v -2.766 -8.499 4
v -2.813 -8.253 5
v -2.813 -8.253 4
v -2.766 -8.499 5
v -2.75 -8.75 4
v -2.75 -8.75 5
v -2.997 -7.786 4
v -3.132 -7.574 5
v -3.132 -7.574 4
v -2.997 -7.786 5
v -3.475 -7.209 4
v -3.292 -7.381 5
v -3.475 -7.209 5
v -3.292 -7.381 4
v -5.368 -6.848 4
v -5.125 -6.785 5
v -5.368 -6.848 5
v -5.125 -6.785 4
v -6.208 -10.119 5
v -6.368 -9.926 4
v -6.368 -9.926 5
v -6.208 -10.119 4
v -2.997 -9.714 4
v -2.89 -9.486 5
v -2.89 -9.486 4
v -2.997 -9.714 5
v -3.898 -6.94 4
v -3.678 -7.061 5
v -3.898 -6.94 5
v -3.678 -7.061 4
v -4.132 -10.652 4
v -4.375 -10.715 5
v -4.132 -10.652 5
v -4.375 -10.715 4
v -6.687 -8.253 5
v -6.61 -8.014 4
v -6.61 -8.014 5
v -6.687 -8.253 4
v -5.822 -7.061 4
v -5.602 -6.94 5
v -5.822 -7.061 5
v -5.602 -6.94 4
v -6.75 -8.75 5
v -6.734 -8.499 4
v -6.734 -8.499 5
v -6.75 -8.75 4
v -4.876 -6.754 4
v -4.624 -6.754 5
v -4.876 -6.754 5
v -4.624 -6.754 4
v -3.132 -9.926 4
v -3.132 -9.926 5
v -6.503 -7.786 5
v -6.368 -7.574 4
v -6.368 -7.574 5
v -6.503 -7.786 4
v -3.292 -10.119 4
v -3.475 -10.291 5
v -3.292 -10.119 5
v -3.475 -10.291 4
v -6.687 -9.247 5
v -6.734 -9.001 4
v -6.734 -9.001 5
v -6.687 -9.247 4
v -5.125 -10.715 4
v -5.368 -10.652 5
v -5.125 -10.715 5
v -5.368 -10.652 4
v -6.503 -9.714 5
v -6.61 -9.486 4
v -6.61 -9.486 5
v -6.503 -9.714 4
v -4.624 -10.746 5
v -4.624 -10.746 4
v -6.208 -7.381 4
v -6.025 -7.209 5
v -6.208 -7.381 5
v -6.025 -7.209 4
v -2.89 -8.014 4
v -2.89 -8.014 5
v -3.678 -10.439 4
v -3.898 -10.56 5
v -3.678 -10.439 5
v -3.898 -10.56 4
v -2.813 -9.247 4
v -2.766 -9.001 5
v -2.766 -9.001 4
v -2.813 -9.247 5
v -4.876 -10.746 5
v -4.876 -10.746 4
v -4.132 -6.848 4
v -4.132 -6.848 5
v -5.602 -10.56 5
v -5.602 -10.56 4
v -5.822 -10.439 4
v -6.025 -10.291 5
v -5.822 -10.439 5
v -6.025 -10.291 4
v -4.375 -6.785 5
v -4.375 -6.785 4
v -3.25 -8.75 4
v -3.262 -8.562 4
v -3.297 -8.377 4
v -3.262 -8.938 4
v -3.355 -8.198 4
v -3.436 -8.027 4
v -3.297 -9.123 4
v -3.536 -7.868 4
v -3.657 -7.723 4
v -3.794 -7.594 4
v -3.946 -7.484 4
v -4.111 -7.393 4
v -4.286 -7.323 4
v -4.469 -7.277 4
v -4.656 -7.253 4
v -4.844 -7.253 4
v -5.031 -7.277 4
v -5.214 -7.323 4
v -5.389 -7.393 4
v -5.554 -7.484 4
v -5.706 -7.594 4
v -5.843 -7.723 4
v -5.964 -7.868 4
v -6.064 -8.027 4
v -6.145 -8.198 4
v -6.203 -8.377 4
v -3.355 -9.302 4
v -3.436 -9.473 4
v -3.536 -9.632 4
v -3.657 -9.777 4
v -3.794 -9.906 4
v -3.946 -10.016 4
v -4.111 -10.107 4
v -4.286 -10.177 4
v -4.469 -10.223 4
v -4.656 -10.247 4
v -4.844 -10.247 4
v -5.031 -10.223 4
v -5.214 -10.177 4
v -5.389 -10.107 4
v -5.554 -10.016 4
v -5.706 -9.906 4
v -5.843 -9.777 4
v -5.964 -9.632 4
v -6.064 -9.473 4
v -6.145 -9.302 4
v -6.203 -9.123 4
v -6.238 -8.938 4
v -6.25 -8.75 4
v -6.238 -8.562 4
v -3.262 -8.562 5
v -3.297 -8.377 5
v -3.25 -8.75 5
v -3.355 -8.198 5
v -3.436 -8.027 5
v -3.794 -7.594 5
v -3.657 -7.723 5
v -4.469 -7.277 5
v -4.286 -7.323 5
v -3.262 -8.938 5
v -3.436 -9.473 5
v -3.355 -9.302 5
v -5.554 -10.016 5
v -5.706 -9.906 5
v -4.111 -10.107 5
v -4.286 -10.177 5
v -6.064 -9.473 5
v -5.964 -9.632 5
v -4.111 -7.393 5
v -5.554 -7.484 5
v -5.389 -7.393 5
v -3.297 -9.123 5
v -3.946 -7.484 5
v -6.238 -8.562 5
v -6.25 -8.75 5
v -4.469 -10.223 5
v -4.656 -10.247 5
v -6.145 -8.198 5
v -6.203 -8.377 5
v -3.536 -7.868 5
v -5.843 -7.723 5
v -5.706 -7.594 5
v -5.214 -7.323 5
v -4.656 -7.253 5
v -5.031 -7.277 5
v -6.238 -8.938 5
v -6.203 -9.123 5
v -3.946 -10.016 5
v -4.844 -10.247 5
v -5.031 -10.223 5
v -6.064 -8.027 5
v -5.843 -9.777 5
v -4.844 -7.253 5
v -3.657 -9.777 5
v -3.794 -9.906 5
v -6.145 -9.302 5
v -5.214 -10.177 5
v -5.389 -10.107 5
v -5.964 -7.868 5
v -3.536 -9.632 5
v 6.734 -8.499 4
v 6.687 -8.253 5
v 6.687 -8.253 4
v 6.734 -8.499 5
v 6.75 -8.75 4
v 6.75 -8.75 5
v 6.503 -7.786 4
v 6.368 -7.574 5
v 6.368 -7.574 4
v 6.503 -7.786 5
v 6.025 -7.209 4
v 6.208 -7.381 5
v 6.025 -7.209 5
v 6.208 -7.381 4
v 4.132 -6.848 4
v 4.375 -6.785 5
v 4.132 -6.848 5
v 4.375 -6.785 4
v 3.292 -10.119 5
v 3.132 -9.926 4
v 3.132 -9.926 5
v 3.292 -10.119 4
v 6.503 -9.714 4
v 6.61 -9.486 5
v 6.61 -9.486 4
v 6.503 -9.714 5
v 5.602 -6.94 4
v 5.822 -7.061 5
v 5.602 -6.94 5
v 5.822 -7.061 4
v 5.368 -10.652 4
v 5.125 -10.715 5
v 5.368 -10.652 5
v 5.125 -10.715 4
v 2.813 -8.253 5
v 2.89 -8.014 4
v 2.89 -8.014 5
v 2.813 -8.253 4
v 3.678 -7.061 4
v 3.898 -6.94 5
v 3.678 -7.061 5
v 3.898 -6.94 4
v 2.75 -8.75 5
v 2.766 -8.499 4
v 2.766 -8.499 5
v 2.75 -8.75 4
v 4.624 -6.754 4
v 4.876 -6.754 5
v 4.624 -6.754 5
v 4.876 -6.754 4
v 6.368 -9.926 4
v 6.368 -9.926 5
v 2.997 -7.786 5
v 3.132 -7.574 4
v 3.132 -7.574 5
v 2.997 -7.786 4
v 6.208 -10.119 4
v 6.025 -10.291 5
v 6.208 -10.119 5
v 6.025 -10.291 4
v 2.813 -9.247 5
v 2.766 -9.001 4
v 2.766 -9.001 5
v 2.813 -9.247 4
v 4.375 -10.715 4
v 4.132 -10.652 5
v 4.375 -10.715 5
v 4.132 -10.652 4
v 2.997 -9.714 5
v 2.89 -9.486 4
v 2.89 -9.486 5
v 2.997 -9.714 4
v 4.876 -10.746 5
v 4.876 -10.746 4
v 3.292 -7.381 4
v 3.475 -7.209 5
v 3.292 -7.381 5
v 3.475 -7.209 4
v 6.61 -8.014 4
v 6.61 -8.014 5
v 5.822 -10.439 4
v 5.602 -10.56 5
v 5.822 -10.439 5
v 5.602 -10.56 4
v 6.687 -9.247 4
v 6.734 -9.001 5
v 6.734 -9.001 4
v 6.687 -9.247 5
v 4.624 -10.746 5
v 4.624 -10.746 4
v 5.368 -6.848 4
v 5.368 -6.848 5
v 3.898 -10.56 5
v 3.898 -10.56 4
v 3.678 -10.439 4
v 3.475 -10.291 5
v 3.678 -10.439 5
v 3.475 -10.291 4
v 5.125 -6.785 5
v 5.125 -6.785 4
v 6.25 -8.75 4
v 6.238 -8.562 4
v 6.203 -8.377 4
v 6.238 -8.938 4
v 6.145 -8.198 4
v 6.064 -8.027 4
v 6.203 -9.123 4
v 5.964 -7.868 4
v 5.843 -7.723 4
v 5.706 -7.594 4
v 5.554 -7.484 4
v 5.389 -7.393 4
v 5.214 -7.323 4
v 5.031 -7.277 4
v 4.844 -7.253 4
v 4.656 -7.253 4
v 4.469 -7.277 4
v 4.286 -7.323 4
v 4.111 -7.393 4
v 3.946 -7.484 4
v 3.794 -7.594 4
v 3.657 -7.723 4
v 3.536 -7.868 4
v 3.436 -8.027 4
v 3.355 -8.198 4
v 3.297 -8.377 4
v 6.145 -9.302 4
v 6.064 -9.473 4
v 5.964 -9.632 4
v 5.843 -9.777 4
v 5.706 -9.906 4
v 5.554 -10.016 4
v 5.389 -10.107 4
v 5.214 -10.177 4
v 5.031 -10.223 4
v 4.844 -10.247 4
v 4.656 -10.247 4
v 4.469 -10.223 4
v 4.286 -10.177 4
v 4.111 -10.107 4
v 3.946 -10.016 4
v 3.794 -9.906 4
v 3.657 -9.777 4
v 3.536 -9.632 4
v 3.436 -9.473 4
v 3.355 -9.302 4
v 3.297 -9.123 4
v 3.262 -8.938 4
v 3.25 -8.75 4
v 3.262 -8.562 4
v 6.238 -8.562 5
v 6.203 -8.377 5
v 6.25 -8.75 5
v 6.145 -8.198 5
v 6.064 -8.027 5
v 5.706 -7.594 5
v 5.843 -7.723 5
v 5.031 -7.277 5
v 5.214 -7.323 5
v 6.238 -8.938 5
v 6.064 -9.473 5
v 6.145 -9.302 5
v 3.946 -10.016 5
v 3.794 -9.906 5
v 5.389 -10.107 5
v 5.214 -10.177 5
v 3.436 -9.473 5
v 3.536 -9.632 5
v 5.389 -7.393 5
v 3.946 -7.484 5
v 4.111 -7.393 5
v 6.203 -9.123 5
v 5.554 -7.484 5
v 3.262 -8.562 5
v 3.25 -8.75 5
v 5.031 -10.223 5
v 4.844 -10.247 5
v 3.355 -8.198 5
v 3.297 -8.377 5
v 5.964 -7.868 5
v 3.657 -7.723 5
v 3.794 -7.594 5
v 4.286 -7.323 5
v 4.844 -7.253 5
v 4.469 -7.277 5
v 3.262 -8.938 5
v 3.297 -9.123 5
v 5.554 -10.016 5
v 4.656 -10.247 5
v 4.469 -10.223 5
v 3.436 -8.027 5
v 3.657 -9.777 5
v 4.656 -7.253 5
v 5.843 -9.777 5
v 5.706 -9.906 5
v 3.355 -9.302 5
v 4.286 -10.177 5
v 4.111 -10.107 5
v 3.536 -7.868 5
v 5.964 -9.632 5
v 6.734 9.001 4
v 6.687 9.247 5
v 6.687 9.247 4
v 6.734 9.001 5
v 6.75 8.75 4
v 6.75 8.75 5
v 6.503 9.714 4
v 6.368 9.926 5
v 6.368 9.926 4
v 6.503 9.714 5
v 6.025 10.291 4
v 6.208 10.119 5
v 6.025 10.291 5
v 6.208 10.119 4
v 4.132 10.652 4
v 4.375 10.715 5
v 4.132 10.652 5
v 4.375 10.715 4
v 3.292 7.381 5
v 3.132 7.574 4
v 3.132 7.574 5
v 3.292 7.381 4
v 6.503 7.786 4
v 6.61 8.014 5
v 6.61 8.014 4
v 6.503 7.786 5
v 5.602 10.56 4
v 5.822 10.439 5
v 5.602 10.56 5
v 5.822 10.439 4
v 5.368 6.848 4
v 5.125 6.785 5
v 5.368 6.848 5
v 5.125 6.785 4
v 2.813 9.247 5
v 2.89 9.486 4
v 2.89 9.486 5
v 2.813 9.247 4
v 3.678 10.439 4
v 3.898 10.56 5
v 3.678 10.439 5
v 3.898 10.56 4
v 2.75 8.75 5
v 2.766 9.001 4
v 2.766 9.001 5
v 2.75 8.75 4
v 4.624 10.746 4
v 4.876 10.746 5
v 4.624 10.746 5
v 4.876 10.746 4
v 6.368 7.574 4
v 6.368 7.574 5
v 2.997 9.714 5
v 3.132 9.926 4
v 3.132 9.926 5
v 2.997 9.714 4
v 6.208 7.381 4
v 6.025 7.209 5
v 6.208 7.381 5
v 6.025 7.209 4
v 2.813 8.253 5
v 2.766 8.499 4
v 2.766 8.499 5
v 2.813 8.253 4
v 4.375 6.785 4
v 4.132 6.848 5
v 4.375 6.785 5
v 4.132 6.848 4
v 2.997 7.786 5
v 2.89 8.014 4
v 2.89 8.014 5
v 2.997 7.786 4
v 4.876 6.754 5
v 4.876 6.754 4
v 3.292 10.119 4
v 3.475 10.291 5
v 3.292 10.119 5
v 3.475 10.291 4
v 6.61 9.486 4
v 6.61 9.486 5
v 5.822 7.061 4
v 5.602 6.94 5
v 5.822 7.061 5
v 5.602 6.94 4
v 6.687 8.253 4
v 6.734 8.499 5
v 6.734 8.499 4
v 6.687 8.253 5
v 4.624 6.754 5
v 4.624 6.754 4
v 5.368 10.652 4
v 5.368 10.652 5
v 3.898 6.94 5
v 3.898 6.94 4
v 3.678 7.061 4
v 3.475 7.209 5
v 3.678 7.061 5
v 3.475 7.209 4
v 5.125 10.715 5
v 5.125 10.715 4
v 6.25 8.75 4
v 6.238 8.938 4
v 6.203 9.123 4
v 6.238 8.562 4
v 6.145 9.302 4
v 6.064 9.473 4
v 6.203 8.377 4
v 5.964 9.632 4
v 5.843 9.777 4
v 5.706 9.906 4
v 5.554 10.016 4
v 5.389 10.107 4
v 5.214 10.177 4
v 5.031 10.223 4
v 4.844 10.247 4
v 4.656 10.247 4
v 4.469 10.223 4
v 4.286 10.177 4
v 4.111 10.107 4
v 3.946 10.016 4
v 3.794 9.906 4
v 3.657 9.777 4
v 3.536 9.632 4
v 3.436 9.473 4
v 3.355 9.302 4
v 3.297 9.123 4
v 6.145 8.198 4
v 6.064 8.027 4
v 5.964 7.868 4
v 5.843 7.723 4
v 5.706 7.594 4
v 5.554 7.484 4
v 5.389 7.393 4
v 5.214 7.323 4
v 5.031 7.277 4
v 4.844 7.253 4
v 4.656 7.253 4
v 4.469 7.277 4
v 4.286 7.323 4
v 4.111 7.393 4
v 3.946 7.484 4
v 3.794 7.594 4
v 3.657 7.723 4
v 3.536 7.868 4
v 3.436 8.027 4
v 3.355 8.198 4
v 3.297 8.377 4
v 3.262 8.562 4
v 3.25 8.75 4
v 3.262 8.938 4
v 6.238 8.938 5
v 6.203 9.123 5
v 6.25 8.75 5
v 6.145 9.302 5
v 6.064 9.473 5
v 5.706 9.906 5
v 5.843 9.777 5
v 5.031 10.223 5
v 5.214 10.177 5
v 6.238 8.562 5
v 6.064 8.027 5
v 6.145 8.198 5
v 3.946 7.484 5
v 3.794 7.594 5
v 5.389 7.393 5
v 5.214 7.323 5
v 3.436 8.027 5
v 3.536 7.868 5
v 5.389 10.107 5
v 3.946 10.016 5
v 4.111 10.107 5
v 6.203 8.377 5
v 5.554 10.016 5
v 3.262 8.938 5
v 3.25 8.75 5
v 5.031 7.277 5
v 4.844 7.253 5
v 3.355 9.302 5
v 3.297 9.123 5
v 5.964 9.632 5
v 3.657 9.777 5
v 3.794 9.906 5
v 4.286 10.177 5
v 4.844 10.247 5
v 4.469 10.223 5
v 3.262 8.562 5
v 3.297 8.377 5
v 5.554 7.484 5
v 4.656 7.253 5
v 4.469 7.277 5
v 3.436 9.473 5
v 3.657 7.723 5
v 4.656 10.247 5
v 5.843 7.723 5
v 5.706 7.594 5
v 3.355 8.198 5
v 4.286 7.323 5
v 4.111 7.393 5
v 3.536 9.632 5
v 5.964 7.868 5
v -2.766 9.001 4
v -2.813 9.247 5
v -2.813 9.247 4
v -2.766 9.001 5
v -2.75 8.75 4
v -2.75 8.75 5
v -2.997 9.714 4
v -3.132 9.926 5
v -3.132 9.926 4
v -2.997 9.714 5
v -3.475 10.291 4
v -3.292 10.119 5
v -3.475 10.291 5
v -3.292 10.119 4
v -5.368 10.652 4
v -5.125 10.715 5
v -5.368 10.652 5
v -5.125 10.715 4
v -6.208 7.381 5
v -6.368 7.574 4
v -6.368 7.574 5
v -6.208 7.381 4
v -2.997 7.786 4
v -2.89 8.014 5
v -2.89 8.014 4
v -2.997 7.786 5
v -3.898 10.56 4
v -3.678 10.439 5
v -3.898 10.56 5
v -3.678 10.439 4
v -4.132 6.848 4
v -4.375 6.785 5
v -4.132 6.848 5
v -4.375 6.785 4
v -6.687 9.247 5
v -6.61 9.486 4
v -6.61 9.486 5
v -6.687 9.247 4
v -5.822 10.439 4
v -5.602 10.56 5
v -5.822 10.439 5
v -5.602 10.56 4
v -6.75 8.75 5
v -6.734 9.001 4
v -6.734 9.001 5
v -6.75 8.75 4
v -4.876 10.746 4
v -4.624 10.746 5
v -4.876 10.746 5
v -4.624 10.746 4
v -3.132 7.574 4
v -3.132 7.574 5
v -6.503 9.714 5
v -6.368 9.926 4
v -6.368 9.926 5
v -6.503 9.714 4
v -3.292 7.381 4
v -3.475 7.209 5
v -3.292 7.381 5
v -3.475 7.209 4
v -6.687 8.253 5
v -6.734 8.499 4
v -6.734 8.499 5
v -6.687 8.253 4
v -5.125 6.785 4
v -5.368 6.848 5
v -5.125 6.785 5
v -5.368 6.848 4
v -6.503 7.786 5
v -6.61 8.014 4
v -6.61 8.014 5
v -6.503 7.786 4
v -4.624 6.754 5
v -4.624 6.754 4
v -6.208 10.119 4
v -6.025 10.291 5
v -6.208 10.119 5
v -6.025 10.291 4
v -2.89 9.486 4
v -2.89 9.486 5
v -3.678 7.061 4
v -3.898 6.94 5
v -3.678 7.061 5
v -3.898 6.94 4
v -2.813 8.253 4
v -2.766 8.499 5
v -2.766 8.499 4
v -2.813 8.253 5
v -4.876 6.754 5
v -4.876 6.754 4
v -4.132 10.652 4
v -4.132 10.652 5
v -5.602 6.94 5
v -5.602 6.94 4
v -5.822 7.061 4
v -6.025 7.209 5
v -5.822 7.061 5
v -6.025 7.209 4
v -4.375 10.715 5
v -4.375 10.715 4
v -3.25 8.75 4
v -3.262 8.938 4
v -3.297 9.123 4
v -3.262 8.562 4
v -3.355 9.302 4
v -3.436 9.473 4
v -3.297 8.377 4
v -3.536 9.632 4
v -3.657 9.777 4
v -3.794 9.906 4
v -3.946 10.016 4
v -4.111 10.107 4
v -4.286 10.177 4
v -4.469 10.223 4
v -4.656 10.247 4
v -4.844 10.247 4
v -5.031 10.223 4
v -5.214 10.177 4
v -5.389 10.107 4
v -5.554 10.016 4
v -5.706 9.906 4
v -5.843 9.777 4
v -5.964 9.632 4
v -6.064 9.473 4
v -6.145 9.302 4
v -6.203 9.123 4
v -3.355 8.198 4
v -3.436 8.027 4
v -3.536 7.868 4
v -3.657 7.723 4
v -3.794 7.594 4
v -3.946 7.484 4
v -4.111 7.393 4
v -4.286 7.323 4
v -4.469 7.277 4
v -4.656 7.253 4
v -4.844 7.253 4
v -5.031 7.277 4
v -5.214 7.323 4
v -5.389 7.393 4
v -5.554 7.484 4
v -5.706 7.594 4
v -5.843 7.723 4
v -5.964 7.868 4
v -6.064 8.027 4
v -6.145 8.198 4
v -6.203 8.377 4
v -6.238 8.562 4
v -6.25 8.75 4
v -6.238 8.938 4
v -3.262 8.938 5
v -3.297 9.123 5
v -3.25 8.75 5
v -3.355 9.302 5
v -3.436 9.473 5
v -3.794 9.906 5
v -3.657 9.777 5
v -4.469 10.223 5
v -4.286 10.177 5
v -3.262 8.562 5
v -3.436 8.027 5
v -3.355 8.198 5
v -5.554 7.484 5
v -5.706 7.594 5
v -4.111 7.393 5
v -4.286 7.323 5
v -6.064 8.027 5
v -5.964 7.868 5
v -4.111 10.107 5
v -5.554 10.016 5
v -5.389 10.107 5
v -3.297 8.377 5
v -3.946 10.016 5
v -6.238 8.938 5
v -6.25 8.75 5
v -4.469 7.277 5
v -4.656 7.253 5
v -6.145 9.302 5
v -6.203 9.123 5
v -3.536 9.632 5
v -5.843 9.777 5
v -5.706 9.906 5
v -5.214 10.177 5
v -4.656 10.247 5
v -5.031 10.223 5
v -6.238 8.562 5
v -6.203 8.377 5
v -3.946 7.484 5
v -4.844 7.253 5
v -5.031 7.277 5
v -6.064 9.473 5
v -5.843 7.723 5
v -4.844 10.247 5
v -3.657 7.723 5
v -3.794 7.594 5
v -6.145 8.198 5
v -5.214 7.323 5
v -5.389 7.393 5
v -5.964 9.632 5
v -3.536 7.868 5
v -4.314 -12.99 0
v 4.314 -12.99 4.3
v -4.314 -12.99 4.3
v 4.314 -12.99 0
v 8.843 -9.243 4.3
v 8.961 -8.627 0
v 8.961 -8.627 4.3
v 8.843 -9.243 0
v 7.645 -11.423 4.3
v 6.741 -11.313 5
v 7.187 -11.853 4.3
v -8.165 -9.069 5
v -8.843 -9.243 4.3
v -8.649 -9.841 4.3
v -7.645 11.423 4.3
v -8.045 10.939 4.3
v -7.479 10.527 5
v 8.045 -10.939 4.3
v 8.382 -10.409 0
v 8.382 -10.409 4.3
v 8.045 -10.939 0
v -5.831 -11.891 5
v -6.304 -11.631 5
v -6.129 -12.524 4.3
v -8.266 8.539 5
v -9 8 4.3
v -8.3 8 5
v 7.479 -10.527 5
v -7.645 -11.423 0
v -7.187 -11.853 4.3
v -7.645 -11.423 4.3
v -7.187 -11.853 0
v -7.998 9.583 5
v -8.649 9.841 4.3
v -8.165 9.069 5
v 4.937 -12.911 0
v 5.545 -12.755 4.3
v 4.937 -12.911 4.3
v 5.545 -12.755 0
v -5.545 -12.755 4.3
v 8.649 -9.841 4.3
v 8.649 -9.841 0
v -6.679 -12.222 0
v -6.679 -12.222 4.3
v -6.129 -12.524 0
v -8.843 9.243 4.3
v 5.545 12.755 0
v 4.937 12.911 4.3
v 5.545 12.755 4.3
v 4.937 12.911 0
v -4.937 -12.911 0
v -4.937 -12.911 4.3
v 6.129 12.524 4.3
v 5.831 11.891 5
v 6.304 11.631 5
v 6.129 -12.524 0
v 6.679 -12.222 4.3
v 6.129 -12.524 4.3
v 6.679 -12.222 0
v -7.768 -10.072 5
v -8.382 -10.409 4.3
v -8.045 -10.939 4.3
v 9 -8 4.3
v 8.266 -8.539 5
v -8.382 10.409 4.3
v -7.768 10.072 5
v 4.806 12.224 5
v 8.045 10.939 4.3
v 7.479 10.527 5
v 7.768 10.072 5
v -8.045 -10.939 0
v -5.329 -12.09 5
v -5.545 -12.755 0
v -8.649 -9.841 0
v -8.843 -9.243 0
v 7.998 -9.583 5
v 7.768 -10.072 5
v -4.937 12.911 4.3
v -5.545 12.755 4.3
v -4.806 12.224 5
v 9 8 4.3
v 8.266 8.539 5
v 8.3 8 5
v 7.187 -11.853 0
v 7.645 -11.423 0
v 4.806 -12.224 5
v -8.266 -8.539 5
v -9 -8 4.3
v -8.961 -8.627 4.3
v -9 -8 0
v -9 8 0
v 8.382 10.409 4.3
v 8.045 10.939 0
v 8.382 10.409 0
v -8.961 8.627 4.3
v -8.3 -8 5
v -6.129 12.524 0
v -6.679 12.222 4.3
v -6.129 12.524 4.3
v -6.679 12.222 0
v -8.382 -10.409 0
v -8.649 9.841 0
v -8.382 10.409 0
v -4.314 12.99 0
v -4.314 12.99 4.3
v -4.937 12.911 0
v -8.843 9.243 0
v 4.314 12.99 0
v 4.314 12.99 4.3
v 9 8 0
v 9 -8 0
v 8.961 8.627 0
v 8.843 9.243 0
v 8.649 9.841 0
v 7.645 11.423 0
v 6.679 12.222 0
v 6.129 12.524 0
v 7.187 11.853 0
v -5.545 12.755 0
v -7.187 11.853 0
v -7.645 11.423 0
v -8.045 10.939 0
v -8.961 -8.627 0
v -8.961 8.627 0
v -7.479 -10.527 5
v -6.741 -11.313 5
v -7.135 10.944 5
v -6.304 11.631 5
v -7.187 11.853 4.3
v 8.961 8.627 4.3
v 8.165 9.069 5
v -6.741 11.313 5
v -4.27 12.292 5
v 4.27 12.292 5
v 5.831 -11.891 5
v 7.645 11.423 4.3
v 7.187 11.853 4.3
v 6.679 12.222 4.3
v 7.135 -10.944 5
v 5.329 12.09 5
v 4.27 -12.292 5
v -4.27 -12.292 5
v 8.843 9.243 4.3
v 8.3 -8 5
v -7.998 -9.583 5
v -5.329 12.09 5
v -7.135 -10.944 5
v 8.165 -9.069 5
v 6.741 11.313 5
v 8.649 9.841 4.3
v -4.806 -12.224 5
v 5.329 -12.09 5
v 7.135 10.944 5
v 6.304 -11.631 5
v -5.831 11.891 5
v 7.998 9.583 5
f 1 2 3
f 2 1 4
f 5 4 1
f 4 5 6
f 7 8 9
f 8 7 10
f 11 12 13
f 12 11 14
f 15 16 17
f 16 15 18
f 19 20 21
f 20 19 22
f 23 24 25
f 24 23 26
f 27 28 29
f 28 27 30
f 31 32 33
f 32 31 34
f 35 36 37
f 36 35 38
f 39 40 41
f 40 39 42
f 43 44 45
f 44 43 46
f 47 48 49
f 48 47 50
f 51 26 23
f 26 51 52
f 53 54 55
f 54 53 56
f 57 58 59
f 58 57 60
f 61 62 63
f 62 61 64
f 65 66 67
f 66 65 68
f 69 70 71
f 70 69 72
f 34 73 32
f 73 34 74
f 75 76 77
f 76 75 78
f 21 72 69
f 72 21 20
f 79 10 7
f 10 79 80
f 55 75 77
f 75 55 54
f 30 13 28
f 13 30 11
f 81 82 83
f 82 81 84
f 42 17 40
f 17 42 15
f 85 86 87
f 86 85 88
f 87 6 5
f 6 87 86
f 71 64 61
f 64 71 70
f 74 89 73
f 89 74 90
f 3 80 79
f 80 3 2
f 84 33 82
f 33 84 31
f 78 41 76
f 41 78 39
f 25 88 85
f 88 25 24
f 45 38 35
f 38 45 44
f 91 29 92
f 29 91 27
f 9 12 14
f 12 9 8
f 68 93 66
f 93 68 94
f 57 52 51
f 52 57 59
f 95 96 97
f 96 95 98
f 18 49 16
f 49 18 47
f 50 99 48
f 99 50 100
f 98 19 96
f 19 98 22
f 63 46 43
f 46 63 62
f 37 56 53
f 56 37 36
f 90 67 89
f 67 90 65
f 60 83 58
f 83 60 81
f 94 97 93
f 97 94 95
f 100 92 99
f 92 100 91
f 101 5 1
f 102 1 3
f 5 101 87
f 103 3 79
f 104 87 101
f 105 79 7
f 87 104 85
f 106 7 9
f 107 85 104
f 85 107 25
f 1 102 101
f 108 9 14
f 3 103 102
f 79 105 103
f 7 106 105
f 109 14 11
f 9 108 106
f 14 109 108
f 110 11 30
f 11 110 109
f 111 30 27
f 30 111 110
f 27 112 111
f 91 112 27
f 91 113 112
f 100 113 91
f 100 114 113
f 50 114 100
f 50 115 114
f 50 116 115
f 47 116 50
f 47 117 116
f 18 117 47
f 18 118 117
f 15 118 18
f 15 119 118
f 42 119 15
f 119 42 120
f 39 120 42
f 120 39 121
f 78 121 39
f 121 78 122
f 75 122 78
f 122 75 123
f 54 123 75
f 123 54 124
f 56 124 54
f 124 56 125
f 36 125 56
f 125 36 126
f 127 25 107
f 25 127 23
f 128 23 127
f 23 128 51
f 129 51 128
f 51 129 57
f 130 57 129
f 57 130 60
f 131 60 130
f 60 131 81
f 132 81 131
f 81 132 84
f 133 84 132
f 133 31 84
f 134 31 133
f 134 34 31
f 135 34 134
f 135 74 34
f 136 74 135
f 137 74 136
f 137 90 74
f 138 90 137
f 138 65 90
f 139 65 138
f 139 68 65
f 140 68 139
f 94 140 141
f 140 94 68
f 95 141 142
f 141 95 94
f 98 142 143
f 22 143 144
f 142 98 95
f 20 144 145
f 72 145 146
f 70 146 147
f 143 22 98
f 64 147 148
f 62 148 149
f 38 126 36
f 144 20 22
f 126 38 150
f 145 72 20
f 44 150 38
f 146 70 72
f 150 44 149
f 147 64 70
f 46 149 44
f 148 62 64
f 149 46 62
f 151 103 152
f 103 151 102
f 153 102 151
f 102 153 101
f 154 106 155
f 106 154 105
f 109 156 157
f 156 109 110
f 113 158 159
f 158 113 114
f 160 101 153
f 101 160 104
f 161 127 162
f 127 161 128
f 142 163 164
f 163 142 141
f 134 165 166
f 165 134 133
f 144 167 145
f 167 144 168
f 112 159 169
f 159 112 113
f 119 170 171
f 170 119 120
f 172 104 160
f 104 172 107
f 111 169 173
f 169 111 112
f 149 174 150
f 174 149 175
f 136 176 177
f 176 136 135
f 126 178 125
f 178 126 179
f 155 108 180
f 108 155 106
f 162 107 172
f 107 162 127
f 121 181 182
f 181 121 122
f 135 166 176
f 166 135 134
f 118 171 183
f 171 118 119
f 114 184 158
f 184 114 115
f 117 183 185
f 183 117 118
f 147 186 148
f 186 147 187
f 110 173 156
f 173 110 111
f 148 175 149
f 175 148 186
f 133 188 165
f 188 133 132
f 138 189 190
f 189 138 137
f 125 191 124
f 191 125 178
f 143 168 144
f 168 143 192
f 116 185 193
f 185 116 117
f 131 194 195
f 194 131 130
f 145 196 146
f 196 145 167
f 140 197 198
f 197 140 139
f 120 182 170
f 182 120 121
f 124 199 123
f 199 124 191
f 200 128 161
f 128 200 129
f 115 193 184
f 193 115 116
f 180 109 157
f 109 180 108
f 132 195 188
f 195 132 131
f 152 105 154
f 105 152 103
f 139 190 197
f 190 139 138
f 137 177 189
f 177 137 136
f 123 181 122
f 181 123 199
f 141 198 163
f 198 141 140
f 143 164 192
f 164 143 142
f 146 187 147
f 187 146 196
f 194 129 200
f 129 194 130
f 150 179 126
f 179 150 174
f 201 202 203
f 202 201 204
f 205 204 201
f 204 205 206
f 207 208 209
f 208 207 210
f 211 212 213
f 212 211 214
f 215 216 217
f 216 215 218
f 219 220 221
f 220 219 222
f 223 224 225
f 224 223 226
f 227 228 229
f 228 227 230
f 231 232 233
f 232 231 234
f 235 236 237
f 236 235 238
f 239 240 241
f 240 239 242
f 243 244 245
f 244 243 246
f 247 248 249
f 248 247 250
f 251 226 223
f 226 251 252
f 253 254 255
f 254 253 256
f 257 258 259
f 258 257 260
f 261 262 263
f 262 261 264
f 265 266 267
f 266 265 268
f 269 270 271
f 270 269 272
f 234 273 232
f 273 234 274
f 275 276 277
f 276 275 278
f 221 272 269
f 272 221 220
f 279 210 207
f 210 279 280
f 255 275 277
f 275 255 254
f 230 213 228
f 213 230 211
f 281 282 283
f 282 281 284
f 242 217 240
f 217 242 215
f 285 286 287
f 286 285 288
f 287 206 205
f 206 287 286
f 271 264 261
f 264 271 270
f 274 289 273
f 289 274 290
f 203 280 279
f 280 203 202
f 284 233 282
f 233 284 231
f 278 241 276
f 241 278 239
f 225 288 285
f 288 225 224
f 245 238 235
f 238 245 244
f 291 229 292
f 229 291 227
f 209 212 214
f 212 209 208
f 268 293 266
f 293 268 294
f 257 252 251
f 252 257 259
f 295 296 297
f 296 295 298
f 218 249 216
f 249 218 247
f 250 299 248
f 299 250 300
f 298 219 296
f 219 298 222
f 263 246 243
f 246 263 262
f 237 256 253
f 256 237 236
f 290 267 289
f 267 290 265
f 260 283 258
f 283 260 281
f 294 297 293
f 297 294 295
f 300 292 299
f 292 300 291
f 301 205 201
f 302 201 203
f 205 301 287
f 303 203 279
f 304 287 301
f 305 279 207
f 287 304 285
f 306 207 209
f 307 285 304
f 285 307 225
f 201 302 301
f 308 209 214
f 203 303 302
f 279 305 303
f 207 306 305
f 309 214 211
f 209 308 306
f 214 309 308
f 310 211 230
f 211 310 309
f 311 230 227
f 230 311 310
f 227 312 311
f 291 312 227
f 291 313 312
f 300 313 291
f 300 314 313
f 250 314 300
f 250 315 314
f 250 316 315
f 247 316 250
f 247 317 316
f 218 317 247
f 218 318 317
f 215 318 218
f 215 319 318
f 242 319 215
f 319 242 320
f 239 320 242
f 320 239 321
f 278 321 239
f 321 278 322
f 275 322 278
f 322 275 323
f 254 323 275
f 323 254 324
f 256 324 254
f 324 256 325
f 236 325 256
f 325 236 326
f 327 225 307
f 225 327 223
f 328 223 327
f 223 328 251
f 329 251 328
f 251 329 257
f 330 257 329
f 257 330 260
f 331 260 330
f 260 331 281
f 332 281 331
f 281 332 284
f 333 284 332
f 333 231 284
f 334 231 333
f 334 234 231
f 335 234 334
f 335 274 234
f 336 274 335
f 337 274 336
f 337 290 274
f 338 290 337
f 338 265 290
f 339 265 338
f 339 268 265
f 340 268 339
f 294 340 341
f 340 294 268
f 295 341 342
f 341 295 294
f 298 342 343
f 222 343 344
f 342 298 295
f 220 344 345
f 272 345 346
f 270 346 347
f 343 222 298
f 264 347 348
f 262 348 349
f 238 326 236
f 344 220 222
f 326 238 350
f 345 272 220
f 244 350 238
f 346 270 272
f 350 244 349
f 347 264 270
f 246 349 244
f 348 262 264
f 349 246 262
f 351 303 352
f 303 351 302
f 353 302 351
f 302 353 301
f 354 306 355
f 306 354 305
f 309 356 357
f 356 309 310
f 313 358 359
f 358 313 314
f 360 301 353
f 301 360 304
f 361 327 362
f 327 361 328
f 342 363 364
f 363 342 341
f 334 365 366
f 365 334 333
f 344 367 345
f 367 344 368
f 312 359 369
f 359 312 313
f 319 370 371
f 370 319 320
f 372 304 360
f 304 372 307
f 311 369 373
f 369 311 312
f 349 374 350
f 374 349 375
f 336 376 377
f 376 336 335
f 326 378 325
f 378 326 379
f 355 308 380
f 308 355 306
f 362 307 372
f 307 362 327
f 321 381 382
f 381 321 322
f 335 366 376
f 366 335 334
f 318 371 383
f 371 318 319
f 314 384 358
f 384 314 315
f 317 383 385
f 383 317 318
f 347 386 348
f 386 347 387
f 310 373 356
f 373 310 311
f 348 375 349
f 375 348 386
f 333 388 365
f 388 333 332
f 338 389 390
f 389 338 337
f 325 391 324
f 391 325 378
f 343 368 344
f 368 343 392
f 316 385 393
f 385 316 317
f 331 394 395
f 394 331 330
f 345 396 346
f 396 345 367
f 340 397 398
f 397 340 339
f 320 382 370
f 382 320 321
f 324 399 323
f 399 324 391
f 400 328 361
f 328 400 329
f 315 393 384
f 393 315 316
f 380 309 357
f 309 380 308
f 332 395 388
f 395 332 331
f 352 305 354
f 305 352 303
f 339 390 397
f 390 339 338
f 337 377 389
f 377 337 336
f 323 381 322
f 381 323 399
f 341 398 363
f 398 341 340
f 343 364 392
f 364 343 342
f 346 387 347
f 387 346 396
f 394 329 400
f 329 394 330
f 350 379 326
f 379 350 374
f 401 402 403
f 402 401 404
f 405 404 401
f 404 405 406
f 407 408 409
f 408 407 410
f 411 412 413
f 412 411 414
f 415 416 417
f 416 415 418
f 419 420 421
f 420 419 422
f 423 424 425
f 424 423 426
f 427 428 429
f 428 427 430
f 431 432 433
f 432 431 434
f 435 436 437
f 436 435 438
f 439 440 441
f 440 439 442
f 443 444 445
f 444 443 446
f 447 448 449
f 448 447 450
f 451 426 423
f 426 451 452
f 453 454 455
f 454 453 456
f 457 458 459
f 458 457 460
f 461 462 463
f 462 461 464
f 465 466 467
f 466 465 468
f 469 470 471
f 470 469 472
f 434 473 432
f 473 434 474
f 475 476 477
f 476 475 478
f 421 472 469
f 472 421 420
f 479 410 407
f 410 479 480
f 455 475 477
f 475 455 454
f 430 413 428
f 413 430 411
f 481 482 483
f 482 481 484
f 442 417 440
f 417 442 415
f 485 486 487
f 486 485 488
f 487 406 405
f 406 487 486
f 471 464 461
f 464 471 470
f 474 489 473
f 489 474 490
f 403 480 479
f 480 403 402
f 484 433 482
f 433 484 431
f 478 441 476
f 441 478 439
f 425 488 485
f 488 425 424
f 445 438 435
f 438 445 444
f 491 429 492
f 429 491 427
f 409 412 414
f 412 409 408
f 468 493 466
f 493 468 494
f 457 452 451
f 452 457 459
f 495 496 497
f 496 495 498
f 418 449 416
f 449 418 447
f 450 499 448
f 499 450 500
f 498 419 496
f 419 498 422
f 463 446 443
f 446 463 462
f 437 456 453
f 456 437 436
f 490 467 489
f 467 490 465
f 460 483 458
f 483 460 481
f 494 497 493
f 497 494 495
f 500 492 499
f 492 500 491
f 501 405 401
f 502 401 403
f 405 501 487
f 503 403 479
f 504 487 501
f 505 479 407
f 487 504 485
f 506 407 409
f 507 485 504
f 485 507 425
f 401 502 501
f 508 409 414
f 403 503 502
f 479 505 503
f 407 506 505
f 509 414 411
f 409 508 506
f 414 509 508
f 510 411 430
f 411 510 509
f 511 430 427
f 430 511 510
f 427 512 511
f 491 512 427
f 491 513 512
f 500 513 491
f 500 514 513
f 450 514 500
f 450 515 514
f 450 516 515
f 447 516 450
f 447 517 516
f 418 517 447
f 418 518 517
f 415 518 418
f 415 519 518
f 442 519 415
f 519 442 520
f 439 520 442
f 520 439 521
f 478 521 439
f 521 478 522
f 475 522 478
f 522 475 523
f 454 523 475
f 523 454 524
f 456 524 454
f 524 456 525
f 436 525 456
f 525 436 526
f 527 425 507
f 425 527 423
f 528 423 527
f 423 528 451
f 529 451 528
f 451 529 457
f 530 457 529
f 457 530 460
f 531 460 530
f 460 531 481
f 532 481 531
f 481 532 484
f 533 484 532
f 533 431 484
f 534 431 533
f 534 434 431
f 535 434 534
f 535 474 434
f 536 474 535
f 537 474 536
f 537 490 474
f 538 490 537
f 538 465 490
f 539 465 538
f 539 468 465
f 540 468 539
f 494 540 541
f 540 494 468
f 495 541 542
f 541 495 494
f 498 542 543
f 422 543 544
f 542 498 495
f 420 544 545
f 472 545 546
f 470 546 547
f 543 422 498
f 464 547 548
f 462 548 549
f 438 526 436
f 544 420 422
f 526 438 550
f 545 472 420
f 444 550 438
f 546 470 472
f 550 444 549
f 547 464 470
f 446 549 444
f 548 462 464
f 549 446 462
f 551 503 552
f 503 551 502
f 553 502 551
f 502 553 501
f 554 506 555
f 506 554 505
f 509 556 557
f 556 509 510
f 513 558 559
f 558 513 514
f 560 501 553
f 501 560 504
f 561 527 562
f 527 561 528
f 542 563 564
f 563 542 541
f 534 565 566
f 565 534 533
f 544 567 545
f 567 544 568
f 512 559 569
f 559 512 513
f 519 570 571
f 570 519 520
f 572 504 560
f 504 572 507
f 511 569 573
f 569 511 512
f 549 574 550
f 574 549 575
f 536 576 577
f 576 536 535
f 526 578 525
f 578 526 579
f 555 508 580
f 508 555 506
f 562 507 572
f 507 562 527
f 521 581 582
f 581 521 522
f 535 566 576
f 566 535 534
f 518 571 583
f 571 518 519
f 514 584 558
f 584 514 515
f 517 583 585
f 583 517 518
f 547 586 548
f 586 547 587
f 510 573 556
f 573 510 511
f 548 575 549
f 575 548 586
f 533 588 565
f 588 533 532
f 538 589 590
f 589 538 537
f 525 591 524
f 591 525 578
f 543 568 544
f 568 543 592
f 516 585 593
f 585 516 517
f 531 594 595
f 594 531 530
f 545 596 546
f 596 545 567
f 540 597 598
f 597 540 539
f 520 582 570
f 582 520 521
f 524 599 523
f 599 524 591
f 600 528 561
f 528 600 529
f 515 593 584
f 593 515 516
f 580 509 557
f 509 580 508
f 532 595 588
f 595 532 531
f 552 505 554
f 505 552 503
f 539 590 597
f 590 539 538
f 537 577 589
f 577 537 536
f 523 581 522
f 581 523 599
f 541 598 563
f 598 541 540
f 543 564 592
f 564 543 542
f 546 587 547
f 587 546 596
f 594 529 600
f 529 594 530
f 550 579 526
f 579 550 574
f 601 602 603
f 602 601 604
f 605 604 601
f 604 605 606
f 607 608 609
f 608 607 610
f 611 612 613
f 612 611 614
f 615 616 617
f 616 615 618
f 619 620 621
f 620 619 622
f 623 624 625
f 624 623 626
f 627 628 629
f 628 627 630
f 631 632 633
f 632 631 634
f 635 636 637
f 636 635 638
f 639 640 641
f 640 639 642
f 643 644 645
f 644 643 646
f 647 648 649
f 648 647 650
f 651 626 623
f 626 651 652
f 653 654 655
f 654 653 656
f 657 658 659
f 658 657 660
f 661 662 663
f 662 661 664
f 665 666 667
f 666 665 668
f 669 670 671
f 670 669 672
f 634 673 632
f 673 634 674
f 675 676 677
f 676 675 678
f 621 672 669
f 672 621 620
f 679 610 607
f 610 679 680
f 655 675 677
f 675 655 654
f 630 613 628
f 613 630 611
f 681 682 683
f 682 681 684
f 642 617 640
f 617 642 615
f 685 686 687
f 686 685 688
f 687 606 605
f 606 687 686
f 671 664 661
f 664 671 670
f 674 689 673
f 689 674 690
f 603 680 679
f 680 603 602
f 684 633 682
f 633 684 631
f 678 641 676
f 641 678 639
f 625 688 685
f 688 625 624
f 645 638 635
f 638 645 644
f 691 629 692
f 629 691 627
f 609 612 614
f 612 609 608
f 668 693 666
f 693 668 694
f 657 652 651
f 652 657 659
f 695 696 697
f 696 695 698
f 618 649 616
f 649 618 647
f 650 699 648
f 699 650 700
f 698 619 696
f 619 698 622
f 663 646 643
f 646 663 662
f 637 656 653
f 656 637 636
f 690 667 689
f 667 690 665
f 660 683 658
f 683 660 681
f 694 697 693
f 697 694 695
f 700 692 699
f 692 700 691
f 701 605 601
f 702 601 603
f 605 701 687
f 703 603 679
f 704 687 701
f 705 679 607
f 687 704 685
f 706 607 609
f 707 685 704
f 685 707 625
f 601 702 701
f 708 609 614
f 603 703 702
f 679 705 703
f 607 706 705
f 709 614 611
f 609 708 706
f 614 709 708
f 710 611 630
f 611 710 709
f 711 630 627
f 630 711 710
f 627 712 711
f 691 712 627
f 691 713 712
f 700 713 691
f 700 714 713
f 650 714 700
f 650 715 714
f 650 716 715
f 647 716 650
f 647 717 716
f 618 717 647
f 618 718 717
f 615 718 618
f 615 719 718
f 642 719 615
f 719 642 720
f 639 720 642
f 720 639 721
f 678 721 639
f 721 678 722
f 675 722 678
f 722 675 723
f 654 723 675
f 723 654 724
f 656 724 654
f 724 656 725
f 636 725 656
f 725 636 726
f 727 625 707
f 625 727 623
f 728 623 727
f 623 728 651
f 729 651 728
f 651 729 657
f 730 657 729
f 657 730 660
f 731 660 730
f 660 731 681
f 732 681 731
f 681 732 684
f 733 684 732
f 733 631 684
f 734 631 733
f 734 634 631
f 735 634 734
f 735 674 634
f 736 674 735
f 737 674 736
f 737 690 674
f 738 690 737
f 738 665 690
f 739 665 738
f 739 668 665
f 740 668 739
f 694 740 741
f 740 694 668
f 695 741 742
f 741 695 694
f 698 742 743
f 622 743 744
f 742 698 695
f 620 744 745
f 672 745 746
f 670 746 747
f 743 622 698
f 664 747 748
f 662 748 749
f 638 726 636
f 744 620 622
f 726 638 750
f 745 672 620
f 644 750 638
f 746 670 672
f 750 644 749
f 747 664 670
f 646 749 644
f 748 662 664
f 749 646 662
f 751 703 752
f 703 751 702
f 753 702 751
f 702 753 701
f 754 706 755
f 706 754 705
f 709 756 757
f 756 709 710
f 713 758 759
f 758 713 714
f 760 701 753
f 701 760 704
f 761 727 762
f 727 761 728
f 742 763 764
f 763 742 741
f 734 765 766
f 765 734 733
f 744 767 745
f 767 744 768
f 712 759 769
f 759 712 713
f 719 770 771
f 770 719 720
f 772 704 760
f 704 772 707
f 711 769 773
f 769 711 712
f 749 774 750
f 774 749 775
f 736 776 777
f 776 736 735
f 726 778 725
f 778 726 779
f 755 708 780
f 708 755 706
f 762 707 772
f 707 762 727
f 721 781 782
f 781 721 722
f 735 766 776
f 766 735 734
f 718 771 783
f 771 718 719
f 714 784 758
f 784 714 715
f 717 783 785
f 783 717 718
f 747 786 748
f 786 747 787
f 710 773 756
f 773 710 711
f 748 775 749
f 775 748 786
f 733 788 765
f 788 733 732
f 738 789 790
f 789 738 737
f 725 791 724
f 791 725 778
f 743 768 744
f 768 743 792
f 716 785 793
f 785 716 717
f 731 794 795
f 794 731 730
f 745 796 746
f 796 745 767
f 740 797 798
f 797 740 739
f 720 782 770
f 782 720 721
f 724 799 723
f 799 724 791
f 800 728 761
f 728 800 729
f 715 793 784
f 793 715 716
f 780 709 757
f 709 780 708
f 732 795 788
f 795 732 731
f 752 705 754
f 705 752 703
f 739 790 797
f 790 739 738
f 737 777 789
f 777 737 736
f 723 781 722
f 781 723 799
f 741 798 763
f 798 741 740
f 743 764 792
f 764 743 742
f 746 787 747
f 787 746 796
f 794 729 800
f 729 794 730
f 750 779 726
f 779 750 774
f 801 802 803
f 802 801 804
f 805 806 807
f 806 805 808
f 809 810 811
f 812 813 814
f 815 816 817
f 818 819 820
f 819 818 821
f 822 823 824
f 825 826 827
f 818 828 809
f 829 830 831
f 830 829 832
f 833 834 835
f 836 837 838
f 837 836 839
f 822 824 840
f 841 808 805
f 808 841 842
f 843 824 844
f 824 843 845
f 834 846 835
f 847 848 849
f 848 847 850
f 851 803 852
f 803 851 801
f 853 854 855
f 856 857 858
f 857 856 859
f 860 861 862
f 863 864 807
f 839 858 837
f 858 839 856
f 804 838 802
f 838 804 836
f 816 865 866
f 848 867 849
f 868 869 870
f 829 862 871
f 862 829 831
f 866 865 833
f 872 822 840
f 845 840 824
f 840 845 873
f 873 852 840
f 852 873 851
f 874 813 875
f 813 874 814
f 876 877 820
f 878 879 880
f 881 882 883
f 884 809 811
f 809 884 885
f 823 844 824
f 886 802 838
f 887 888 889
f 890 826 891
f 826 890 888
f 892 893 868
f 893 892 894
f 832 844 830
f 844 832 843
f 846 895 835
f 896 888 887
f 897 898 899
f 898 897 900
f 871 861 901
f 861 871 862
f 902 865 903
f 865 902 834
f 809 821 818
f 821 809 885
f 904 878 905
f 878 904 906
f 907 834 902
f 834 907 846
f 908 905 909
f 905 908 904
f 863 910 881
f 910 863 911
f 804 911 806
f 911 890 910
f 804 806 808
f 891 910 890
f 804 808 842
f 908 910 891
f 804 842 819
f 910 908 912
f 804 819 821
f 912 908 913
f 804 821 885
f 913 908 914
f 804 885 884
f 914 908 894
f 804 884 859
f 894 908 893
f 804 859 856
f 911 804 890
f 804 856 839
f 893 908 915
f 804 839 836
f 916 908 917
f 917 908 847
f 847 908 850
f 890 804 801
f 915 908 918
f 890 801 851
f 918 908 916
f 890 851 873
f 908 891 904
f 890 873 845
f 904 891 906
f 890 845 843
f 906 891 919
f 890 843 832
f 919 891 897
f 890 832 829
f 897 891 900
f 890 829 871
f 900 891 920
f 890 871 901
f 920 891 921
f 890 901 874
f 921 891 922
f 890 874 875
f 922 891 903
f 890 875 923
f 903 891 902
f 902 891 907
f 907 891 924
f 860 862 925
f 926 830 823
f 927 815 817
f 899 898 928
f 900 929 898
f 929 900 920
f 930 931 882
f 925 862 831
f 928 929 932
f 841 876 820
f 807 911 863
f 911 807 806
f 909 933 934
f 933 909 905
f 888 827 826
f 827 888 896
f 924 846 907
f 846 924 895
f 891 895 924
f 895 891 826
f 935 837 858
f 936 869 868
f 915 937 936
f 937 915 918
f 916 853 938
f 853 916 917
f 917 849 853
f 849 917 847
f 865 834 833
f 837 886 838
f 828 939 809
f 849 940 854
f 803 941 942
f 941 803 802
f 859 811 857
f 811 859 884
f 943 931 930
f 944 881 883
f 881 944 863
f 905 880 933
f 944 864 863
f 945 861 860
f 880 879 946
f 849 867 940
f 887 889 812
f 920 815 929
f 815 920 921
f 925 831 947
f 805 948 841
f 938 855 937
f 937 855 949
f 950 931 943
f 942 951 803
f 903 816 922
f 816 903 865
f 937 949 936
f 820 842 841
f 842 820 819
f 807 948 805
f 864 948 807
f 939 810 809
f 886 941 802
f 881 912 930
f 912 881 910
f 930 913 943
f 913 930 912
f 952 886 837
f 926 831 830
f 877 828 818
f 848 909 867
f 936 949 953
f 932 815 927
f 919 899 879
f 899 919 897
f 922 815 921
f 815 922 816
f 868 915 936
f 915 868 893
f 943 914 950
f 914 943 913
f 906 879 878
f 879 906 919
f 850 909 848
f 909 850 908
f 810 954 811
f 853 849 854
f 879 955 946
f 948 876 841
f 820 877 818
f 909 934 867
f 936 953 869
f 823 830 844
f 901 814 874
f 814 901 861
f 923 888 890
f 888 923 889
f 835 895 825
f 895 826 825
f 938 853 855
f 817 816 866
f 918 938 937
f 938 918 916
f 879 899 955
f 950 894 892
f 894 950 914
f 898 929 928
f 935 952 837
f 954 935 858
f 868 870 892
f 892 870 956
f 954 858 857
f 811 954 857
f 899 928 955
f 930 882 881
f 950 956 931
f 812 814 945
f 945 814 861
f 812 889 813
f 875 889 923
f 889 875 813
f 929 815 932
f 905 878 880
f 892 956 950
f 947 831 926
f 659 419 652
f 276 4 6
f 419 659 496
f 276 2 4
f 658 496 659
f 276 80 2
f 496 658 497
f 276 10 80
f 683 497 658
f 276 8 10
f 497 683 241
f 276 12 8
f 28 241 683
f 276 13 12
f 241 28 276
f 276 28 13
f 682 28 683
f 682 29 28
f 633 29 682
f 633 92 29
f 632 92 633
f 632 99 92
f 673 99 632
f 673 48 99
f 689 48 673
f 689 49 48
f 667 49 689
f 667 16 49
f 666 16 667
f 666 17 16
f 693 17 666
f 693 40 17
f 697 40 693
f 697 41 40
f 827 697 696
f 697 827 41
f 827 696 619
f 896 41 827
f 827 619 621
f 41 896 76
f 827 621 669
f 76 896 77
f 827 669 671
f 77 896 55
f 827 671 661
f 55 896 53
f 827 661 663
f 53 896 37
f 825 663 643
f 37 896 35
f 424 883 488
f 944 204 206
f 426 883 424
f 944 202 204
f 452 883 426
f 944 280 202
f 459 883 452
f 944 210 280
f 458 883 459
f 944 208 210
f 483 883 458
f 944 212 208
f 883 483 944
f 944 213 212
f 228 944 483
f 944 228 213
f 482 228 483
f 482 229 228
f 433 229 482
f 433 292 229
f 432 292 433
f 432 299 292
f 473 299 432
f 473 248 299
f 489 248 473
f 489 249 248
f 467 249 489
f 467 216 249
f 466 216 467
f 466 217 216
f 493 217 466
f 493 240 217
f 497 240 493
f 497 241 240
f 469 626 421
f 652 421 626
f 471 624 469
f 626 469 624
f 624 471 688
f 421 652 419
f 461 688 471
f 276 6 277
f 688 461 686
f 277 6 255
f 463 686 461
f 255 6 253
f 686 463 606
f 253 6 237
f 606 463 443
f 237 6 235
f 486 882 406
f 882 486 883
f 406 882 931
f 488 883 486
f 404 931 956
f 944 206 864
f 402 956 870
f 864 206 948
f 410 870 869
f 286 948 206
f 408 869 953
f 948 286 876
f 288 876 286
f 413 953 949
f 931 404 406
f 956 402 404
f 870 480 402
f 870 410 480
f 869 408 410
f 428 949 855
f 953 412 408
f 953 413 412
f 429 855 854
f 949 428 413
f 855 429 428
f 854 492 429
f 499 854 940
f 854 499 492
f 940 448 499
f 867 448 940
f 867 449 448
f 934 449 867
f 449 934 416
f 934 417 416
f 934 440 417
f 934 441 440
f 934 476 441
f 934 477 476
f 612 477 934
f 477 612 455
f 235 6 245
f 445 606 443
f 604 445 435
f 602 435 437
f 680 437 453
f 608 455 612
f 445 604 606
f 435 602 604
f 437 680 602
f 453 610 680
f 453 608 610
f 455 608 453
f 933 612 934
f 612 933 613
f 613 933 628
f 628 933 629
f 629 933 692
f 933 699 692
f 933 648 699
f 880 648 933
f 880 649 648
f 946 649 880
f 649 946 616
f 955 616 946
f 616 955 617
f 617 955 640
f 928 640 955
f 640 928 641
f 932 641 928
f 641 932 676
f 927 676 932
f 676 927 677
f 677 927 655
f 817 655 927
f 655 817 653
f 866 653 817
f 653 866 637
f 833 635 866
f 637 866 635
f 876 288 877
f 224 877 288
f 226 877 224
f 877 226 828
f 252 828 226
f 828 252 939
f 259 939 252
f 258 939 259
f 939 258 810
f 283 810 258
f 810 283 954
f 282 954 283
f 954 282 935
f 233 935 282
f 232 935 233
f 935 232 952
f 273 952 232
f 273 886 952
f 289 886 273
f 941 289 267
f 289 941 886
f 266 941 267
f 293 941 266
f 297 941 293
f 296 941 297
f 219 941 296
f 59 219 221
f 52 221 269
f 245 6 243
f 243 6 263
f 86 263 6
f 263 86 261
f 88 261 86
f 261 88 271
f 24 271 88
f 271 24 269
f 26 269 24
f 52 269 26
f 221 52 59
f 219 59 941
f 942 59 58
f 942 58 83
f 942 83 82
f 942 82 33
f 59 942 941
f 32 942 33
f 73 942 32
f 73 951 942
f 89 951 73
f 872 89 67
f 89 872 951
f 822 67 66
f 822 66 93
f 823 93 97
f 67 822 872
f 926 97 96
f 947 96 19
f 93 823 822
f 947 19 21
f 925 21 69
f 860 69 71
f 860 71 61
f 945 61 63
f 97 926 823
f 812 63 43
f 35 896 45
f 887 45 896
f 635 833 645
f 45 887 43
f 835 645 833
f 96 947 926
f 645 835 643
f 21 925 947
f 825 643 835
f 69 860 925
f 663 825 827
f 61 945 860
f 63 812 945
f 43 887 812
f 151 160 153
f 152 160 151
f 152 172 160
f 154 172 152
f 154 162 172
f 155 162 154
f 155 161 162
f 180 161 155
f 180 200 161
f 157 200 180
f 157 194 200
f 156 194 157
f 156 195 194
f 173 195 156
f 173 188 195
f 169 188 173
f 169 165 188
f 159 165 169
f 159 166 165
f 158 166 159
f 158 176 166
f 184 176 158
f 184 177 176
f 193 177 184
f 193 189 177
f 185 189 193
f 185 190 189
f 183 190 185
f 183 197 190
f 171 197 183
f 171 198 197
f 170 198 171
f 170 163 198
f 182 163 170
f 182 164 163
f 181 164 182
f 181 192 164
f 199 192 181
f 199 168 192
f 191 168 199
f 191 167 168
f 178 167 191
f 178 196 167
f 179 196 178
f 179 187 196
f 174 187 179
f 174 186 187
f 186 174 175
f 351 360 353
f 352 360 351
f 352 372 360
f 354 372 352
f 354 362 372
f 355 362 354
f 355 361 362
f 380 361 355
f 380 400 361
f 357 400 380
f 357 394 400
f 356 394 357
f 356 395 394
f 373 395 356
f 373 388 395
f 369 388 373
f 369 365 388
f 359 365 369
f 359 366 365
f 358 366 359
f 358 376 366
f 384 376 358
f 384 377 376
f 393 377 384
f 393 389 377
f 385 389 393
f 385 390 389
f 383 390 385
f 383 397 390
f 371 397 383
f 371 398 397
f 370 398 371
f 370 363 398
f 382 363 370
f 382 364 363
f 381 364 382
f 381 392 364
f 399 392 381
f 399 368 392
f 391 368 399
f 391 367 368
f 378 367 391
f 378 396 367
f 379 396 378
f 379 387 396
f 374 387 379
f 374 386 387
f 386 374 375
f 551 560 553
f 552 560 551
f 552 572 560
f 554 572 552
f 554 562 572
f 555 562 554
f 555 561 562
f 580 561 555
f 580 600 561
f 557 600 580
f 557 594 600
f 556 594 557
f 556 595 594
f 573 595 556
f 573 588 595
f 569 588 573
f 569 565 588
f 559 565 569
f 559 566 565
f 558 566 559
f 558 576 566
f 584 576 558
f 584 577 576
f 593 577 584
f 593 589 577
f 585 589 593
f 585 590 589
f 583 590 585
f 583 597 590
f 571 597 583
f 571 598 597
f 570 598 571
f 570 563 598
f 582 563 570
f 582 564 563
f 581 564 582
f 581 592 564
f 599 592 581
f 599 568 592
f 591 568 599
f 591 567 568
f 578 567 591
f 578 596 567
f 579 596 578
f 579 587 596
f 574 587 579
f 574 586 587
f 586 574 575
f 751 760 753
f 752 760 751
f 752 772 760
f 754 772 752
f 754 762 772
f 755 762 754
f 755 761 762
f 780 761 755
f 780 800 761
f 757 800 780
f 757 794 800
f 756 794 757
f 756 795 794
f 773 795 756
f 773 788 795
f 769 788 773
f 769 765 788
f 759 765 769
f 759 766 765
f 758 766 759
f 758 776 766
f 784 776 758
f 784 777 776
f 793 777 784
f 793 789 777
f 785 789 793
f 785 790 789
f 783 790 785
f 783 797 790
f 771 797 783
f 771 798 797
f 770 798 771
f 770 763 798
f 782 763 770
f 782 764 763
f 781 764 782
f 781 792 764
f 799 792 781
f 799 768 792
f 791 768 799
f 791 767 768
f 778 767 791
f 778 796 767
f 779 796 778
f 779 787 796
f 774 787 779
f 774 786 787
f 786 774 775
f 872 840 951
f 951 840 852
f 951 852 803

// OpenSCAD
$fn=50;

difference() {
   hull() {
      translate([-4,-8,0]) corner();
      translate([4,-8,0]) corner();
      translate([4,8,0]) corner();
      translate([-4,8,0]) corner();
   }
   translate([-4.75,-8.75,0]) cutout();
   translate([4.75,-8.75,0]) cutout();
   translate([4.75,8.75,0]) cutout();
   translate([-4.75,8.75,0]) cutout();
}

module cutout() {
   difference() {
      translate([0,0,4]) cylinder(h=2,r=2);
      translate([0,0,3.5]) cylinder(h=4,r=1.5);
   }
}

module corner() {
   cylinder(h=4.3,r=5);
   translate([0,0,4.3]) cylinder(h=0.7,r1=5,r2=4.3);
}
